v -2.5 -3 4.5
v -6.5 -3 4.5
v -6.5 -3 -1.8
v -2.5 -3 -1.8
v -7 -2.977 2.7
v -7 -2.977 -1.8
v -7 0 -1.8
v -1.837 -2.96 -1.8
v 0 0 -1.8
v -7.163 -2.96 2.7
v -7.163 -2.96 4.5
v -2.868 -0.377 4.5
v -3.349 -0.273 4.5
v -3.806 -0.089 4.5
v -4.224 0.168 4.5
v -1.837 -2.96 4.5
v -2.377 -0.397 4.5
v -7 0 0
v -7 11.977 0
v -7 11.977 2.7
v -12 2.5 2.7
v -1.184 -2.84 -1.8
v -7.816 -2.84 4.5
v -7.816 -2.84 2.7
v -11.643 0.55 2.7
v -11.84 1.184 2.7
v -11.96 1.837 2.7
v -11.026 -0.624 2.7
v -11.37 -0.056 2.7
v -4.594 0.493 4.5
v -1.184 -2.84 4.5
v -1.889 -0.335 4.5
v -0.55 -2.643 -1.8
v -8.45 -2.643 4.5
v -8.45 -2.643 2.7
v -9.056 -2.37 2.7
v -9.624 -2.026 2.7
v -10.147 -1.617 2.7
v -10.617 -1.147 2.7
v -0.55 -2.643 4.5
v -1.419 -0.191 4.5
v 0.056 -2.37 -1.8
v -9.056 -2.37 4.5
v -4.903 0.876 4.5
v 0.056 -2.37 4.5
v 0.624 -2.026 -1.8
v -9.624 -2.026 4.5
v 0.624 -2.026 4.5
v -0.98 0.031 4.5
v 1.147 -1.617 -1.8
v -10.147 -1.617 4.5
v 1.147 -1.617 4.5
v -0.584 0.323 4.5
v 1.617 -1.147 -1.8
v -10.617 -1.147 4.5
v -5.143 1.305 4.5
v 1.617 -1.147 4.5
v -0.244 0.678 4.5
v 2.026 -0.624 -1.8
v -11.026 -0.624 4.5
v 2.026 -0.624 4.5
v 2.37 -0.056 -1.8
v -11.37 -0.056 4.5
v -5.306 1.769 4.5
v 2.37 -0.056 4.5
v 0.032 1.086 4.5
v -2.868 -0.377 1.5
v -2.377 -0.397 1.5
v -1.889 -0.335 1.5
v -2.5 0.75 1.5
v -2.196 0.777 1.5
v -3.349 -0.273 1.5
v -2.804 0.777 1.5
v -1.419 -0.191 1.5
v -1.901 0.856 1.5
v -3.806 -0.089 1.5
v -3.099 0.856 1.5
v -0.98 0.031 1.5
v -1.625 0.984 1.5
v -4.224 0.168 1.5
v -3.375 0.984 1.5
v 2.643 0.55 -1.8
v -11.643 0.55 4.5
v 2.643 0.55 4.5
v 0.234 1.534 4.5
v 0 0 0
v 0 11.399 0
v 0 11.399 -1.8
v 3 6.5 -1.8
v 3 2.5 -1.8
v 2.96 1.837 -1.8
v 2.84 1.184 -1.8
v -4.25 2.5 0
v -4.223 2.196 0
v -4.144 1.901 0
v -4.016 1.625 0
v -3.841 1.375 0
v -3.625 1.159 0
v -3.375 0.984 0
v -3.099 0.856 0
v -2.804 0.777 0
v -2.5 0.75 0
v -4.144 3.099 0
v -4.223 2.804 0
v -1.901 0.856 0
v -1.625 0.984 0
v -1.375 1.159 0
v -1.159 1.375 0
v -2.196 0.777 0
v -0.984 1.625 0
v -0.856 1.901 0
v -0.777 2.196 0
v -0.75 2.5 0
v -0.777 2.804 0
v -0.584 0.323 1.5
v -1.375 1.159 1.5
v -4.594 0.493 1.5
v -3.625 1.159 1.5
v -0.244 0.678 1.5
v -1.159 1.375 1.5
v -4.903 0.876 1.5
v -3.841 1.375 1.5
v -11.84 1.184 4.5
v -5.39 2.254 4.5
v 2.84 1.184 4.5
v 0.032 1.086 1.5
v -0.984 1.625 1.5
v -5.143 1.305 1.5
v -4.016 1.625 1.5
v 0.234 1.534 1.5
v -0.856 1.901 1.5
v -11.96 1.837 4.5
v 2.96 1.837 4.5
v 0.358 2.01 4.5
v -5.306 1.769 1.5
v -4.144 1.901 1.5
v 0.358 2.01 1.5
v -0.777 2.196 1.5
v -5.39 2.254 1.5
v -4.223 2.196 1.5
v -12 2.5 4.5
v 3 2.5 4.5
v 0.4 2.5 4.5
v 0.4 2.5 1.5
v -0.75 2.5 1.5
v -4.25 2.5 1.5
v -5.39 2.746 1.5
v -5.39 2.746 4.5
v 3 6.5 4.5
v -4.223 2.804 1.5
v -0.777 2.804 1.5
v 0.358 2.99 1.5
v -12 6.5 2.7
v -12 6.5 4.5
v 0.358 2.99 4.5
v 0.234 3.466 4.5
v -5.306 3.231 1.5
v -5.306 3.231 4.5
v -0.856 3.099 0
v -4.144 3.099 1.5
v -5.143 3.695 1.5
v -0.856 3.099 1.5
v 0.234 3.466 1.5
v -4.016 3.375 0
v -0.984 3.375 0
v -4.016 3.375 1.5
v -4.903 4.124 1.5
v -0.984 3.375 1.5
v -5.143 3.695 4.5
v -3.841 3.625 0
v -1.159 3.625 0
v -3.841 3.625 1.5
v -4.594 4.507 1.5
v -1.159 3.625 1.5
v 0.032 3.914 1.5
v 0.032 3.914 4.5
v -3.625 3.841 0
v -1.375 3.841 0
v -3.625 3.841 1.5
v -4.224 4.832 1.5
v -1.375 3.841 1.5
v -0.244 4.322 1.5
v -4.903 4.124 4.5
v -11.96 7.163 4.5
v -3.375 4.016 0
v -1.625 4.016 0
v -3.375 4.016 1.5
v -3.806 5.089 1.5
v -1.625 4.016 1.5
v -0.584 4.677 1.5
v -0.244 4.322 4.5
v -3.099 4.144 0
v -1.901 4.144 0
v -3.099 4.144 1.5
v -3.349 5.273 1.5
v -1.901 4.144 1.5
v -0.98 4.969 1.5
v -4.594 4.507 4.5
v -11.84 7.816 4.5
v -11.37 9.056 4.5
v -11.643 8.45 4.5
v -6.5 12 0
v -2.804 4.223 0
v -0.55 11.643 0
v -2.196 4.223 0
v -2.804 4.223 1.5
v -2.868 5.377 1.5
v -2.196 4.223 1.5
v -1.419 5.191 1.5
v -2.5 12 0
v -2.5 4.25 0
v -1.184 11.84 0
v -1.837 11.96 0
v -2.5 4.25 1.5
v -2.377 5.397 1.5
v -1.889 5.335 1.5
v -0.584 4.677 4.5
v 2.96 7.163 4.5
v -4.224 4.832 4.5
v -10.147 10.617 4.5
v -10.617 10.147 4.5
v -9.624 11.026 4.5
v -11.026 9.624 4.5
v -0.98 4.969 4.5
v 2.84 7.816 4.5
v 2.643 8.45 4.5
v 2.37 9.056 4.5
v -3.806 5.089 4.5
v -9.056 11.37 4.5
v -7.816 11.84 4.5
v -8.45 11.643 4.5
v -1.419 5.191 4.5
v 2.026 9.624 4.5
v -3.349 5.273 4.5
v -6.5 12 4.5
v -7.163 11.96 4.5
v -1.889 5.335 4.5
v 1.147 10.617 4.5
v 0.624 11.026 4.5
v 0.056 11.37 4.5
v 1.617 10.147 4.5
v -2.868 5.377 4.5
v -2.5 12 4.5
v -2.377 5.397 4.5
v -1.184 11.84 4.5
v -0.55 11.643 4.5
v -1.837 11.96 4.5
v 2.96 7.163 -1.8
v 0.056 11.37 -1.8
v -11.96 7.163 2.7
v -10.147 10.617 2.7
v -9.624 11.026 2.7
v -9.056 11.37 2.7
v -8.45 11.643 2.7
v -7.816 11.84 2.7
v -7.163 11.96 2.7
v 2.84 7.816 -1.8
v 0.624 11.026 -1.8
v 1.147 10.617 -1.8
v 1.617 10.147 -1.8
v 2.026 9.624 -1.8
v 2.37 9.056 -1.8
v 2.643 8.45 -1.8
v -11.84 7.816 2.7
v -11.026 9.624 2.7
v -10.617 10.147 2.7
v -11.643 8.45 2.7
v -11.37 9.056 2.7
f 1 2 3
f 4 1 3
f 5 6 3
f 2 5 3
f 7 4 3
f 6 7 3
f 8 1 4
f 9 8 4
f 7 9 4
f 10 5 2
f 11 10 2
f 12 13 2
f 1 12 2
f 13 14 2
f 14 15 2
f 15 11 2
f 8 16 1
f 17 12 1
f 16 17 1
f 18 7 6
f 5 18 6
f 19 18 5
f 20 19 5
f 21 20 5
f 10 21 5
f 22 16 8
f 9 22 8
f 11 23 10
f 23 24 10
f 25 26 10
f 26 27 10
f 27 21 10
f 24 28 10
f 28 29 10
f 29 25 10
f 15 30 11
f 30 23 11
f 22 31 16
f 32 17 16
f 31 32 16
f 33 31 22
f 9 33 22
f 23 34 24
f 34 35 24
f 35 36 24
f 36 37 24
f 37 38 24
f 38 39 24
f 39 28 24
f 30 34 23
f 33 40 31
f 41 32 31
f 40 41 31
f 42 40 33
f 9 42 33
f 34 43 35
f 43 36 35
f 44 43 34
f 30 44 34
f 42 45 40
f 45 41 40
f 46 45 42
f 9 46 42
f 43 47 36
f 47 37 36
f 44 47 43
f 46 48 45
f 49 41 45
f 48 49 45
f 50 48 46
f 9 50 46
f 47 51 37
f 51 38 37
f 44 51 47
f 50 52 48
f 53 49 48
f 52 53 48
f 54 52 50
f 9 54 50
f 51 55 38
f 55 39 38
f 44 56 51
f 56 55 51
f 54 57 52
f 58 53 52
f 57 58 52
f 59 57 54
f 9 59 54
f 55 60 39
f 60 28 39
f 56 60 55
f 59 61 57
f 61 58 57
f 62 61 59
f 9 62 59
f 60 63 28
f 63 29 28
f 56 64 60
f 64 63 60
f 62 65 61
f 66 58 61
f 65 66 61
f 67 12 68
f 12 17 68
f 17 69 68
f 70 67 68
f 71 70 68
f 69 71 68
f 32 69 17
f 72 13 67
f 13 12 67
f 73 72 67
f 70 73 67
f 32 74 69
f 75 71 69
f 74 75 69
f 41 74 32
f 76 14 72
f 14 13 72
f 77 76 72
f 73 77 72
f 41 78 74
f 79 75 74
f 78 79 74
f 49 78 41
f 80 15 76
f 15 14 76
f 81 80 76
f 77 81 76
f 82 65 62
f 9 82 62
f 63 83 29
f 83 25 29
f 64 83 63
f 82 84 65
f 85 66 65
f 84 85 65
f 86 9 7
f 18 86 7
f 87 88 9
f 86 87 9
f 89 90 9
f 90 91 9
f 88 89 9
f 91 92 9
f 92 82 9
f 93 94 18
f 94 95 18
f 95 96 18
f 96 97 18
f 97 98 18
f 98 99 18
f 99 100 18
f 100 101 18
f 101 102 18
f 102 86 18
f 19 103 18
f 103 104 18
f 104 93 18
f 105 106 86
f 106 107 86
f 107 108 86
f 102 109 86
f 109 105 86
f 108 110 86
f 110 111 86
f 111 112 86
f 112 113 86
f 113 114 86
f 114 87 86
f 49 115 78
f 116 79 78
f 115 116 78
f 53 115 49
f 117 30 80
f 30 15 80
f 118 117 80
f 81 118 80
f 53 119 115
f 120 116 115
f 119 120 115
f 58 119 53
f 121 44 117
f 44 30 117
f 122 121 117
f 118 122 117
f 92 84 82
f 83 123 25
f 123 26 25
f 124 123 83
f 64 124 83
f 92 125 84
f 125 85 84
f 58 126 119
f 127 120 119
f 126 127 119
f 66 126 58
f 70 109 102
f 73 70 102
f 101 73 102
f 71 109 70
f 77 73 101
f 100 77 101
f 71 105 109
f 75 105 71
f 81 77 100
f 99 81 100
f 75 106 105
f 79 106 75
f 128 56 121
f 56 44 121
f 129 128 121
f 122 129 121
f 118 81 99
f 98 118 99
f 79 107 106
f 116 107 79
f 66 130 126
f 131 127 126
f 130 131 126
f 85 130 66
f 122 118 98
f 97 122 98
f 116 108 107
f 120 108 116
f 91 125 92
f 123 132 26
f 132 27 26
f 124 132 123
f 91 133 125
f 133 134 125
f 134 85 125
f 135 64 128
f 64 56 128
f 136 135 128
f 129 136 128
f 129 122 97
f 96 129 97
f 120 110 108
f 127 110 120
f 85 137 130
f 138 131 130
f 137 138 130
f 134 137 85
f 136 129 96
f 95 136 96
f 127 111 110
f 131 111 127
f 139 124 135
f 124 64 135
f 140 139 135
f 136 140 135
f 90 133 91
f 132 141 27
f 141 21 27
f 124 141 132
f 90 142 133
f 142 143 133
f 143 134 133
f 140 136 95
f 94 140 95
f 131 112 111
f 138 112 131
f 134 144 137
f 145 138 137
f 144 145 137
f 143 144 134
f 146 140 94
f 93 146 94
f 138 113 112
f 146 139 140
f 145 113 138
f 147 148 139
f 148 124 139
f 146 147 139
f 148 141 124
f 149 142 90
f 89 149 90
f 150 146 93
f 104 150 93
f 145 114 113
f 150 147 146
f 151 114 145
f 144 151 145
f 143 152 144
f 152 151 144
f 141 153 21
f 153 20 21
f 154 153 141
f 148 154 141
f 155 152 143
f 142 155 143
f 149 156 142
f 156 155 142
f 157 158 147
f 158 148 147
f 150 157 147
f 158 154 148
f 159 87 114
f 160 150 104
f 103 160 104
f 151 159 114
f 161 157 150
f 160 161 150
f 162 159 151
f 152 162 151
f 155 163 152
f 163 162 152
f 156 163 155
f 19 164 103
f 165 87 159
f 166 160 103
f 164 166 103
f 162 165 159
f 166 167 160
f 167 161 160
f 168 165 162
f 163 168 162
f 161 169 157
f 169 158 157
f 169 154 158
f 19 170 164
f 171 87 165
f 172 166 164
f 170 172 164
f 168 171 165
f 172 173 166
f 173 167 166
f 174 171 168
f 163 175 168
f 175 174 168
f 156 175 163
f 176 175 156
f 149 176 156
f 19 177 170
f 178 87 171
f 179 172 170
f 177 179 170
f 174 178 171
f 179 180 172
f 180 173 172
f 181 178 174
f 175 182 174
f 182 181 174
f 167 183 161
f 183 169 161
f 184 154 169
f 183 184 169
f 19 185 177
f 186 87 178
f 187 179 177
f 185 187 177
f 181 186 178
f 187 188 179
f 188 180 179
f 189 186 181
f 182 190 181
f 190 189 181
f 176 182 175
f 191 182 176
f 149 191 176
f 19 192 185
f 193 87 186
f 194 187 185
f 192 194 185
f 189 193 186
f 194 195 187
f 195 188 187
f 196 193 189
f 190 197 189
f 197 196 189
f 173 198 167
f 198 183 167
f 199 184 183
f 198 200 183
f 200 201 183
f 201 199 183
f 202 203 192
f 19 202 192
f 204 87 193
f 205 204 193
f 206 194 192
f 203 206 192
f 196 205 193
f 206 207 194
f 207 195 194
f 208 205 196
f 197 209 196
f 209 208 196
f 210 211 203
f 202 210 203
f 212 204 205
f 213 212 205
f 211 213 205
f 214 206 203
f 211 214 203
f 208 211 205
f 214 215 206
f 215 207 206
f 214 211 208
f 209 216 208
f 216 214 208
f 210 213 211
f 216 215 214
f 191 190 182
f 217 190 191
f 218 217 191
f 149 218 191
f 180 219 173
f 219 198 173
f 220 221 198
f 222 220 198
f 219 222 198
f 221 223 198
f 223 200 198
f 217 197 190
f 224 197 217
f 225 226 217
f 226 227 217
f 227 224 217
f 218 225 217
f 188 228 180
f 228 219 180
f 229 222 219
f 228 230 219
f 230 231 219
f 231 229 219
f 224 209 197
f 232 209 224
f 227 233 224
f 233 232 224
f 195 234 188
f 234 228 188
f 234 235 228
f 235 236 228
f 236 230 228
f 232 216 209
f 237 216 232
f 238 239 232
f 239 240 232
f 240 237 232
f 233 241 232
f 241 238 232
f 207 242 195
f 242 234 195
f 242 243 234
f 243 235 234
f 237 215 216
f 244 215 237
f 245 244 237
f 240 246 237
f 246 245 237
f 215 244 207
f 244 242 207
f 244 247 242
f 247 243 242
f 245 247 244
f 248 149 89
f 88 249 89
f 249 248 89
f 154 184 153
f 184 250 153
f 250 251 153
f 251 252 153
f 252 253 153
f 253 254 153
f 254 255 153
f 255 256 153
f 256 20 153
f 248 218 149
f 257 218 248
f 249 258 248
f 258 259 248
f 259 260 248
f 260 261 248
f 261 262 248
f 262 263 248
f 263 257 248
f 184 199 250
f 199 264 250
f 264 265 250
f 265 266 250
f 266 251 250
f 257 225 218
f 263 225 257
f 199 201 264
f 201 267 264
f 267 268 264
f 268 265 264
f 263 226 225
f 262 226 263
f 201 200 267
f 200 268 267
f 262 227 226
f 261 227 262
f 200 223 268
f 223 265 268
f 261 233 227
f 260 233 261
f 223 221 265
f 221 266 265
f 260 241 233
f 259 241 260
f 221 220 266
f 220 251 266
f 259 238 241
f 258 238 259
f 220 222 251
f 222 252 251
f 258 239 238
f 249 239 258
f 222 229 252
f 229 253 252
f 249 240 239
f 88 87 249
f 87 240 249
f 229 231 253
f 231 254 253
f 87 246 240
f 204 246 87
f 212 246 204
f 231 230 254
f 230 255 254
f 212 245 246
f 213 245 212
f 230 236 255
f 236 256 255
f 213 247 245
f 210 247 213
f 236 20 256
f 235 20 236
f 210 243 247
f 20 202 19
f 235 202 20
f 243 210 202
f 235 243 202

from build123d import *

# Parameters (mm, degrees)
ESBO_O3_W                = 7
ESBO_O3_H                = 12
ESBO_O3_R                = 1.75
RESSALTO_EXTRUS_O2_DEPTH = 2.7
ESBO_O4_W                = 7
ESBO_O4_H                = 12
ESBO_O4_R                = 1.75
RESSALTO_EXTRUS_O3_DEPTH = 2.1
ESBO_O5_W                = 2.1
ESBO_O5_H                = 12
RESSALTO_EXTRUS_O4_DEPTH = 5
RESSALTO_EXTRUS_O5_DEPTH = 3
ESBO_O7_W                = 4.8
ESBO_O7_H                = 15
RESSALTO_EXTRUS_O6_DEPTH = 3
ESBO_O8_R                = 2.9
CORTE_EXTRUS_O1_DEPTH    = 3
FILETE1_R                = 5.5
RESSALTO_EXTRUS_O7_DEPTH = 1.5
CORTE_EXTRUS_O4_DEPTH    = 6.3
CORTE_EXTRUS_O5_DEPTH    = 6.3
RESSALTO_EXTRUS_O8_DEPTH = 0.3
CORTE_EXTRUS_O6_DEPTH    = 0.3
ESBO_O17_R               = 2.9
CORTE_EXTRUS_O7_DEPTH    = 0.3


with BuildPart() as part:
    # Esboço3 → Ressalto-extrusão2 (new body)
    with BuildSketch(Plane.XY):
        with Locations((-3.5, 6)):
            Rectangle(ESBO_O3_W, ESBO_O3_H)
        with Locations((-2.5, 2.5)):
            Circle(ESBO_O3_R, mode=Mode.SUBTRACT)
    extrude(amount=RESSALTO_EXTRUS_O2_DEPTH)

    # Esboço4 → Ressalto-extrusão3 (add)
    with BuildSketch(Plane.XY.offset(2.7)):
        with Locations((-3.5, 6)):
            Rectangle(ESBO_O4_W, ESBO_O4_H)
        with Locations((-2.5, 2.5)):
            Circle(ESBO_O4_R, mode=Mode.SUBTRACT)
    extrude(amount=RESSALTO_EXTRUS_O3_DEPTH)

    # Esboço5 → Ressalto-extrusão4 (add)
    with BuildSketch(Plane.ZY.offset(7)):
        with Locations((3.75, 6)):
            Rectangle(ESBO_O5_W, ESBO_O5_H)
    extrude(amount=RESSALTO_EXTRUS_O4_DEPTH)

    # Esboço6 → Ressalto-extrusão5 (add)
    with BuildSketch(Plane.XZ):
        Polygon((-7, 0), (0, 0), (0, 4.8), (-12, 4.8), (-12, 2.7), (-7, 2.7), align=None)
    extrude(amount=RESSALTO_EXTRUS_O5_DEPTH)

    # Esboço7 → Ressalto-extrusão6 (add)
    with BuildSketch(Plane(origin=(0, 0, 0), x_dir=(0, 0, -1), z_dir=(1, 0, 0))):
        with Locations((-2.4, 4.5)):
            Rectangle(ESBO_O7_W, ESBO_O7_H)
    extrude(amount=RESSALTO_EXTRUS_O6_DEPTH)

    # Esboço8 → Corte-extrusão1 (cut)
    with BuildSketch(Plane.XY.offset(4.8)):
        with Locations((-2.5, 2.5)):
            Circle(ESBO_O8_R)
    extrude(amount=-CORTE_EXTRUS_O1_DEPTH, mode=Mode.SUBTRACT)

    # Filete1
    filete1_edges = [part.edges().sort_by_distance(p)[0] for p in [
        (3, -3, 2.4),
    ]]
    fillet(filete1_edges, radius=FILETE1_R)

    # Esboço10 → Ressalto-extrusão7 (add)
    with BuildSketch(Plane(origin=(0, 0, 0), x_dir=(-1, 0, 0), z_dir=(0, 0, -1))):
        with BuildLine():
            Line((7, 0), (0, 0))
            Line((0, 0), (0, 12))
            Line((0, 12), (-3, 12))
            Line((-3, 12), (-3, 2.5))
            ThreePointArc((-3, 2.5), (-1.389087297, -1.389087297), (2.5, -3))
            Line((2.5, -3), (7, -3))
            Line((7, -3), (7, 0))
        make_face()
    extrude(amount=RESSALTO_EXTRUS_O7_DEPTH)

    # Esboço14 → Corte-extrusão4 (cut)
    with BuildSketch(Plane.XY.offset(4.8)):
        with BuildLine():
            Line((-12, 12), (-12, 6.5))
            ThreePointArc((-12, 6.5), (-10.389087297, 10.389087297), (-6.5, 12))
            Line((-6.5, 12), (-12, 12))
        make_face()
        with BuildLine():
            ThreePointArc((-2.5, 12), (1.389087297, 10.389087297), (3, 6.5))
            Line((3, 6.5), (3, 12))
            Line((3, 12), (-2.5, 12))
        make_face()
    extrude(amount=-CORTE_EXTRUS_O4_DEPTH, mode=Mode.SUBTRACT)

    # Esboço13 → Corte-extrusão5 (cut)
    with BuildSketch(Plane.XY.offset(4.8)):
        with BuildLine():
            Line((-12, -3), (-6.5, -3))
            ThreePointArc((-6.5, -3), (-10.389087297, -1.389087297), (-12, 2.5))
            Line((-12, 2.5), (-12, -3))
        make_face()
    extrude(amount=-CORTE_EXTRUS_O5_DEPTH, mode=Mode.SUBTRACT)

    # Esboço15 → Ressalto-extrusão8 (add)
    with BuildSketch(Plane(origin=(0, 0, -1.5), x_dir=(-1, 0, 0), z_dir=(0, 0, -1))):
        with BuildLine():
            Line((2.5, -3), (6.5, -3))
            ThreePointArc((6.5, -3), (6.750259203, -2.994303444), (7, -2.977225575))
            Line((7, -2.977225575), (7, 0))
            Line((7, 0), (0, 0))
            Line((0, 0), (0, 11.398979486))
            ThreePointArc((0, 11.398979486), (-2.19041576, 9.372281323), (-3, 6.5))
            Line((-3, 6.5), (-3, 2.5))
            ThreePointArc((-3, 2.5), (-1.389087297, -1.389087297), (2.5, -3))
        make_face()
    extrude(amount=RESSALTO_EXTRUS_O8_DEPTH)

    # Esboço16 → Corte-extrusão6 (cut)
    with BuildSketch(Plane.XY.offset(4.8)):
        with BuildLine():
            Line((-12, 6.5), (-12, 2.5))
            ThreePointArc((-12, 2.5), (-10.389087297, -1.389087297), (-6.5, -3))
            Line((-6.5, -3), (-2.5, -3))
            ThreePointArc((-2.5, -3), (1.389087297, -1.389087297), (3, 2.5))
            Line((3, 2.5), (3, 6.5))
            ThreePointArc((3, 6.5), (1.389087297, 10.389087297), (-2.5, 12))
            Line((-2.5, 12), (-6.5, 12))
            ThreePointArc((-6.5, 12), (-10.389087297, 10.389087297), (-12, 6.5))
        make_face()
    extrude(amount=-CORTE_EXTRUS_O6_DEPTH, mode=Mode.SUBTRACT)

    # Esboço17 → Corte-extrusão7 (cut)
    with BuildSketch(Plane.XY.offset(1.8)):
        with Locations((-2.5, 2.5)):
            Circle(ESBO_O17_R)
    extrude(amount=-CORTE_EXTRUS_O7_DEPTH, mode=Mode.SUBTRACT)


solid = part.part
